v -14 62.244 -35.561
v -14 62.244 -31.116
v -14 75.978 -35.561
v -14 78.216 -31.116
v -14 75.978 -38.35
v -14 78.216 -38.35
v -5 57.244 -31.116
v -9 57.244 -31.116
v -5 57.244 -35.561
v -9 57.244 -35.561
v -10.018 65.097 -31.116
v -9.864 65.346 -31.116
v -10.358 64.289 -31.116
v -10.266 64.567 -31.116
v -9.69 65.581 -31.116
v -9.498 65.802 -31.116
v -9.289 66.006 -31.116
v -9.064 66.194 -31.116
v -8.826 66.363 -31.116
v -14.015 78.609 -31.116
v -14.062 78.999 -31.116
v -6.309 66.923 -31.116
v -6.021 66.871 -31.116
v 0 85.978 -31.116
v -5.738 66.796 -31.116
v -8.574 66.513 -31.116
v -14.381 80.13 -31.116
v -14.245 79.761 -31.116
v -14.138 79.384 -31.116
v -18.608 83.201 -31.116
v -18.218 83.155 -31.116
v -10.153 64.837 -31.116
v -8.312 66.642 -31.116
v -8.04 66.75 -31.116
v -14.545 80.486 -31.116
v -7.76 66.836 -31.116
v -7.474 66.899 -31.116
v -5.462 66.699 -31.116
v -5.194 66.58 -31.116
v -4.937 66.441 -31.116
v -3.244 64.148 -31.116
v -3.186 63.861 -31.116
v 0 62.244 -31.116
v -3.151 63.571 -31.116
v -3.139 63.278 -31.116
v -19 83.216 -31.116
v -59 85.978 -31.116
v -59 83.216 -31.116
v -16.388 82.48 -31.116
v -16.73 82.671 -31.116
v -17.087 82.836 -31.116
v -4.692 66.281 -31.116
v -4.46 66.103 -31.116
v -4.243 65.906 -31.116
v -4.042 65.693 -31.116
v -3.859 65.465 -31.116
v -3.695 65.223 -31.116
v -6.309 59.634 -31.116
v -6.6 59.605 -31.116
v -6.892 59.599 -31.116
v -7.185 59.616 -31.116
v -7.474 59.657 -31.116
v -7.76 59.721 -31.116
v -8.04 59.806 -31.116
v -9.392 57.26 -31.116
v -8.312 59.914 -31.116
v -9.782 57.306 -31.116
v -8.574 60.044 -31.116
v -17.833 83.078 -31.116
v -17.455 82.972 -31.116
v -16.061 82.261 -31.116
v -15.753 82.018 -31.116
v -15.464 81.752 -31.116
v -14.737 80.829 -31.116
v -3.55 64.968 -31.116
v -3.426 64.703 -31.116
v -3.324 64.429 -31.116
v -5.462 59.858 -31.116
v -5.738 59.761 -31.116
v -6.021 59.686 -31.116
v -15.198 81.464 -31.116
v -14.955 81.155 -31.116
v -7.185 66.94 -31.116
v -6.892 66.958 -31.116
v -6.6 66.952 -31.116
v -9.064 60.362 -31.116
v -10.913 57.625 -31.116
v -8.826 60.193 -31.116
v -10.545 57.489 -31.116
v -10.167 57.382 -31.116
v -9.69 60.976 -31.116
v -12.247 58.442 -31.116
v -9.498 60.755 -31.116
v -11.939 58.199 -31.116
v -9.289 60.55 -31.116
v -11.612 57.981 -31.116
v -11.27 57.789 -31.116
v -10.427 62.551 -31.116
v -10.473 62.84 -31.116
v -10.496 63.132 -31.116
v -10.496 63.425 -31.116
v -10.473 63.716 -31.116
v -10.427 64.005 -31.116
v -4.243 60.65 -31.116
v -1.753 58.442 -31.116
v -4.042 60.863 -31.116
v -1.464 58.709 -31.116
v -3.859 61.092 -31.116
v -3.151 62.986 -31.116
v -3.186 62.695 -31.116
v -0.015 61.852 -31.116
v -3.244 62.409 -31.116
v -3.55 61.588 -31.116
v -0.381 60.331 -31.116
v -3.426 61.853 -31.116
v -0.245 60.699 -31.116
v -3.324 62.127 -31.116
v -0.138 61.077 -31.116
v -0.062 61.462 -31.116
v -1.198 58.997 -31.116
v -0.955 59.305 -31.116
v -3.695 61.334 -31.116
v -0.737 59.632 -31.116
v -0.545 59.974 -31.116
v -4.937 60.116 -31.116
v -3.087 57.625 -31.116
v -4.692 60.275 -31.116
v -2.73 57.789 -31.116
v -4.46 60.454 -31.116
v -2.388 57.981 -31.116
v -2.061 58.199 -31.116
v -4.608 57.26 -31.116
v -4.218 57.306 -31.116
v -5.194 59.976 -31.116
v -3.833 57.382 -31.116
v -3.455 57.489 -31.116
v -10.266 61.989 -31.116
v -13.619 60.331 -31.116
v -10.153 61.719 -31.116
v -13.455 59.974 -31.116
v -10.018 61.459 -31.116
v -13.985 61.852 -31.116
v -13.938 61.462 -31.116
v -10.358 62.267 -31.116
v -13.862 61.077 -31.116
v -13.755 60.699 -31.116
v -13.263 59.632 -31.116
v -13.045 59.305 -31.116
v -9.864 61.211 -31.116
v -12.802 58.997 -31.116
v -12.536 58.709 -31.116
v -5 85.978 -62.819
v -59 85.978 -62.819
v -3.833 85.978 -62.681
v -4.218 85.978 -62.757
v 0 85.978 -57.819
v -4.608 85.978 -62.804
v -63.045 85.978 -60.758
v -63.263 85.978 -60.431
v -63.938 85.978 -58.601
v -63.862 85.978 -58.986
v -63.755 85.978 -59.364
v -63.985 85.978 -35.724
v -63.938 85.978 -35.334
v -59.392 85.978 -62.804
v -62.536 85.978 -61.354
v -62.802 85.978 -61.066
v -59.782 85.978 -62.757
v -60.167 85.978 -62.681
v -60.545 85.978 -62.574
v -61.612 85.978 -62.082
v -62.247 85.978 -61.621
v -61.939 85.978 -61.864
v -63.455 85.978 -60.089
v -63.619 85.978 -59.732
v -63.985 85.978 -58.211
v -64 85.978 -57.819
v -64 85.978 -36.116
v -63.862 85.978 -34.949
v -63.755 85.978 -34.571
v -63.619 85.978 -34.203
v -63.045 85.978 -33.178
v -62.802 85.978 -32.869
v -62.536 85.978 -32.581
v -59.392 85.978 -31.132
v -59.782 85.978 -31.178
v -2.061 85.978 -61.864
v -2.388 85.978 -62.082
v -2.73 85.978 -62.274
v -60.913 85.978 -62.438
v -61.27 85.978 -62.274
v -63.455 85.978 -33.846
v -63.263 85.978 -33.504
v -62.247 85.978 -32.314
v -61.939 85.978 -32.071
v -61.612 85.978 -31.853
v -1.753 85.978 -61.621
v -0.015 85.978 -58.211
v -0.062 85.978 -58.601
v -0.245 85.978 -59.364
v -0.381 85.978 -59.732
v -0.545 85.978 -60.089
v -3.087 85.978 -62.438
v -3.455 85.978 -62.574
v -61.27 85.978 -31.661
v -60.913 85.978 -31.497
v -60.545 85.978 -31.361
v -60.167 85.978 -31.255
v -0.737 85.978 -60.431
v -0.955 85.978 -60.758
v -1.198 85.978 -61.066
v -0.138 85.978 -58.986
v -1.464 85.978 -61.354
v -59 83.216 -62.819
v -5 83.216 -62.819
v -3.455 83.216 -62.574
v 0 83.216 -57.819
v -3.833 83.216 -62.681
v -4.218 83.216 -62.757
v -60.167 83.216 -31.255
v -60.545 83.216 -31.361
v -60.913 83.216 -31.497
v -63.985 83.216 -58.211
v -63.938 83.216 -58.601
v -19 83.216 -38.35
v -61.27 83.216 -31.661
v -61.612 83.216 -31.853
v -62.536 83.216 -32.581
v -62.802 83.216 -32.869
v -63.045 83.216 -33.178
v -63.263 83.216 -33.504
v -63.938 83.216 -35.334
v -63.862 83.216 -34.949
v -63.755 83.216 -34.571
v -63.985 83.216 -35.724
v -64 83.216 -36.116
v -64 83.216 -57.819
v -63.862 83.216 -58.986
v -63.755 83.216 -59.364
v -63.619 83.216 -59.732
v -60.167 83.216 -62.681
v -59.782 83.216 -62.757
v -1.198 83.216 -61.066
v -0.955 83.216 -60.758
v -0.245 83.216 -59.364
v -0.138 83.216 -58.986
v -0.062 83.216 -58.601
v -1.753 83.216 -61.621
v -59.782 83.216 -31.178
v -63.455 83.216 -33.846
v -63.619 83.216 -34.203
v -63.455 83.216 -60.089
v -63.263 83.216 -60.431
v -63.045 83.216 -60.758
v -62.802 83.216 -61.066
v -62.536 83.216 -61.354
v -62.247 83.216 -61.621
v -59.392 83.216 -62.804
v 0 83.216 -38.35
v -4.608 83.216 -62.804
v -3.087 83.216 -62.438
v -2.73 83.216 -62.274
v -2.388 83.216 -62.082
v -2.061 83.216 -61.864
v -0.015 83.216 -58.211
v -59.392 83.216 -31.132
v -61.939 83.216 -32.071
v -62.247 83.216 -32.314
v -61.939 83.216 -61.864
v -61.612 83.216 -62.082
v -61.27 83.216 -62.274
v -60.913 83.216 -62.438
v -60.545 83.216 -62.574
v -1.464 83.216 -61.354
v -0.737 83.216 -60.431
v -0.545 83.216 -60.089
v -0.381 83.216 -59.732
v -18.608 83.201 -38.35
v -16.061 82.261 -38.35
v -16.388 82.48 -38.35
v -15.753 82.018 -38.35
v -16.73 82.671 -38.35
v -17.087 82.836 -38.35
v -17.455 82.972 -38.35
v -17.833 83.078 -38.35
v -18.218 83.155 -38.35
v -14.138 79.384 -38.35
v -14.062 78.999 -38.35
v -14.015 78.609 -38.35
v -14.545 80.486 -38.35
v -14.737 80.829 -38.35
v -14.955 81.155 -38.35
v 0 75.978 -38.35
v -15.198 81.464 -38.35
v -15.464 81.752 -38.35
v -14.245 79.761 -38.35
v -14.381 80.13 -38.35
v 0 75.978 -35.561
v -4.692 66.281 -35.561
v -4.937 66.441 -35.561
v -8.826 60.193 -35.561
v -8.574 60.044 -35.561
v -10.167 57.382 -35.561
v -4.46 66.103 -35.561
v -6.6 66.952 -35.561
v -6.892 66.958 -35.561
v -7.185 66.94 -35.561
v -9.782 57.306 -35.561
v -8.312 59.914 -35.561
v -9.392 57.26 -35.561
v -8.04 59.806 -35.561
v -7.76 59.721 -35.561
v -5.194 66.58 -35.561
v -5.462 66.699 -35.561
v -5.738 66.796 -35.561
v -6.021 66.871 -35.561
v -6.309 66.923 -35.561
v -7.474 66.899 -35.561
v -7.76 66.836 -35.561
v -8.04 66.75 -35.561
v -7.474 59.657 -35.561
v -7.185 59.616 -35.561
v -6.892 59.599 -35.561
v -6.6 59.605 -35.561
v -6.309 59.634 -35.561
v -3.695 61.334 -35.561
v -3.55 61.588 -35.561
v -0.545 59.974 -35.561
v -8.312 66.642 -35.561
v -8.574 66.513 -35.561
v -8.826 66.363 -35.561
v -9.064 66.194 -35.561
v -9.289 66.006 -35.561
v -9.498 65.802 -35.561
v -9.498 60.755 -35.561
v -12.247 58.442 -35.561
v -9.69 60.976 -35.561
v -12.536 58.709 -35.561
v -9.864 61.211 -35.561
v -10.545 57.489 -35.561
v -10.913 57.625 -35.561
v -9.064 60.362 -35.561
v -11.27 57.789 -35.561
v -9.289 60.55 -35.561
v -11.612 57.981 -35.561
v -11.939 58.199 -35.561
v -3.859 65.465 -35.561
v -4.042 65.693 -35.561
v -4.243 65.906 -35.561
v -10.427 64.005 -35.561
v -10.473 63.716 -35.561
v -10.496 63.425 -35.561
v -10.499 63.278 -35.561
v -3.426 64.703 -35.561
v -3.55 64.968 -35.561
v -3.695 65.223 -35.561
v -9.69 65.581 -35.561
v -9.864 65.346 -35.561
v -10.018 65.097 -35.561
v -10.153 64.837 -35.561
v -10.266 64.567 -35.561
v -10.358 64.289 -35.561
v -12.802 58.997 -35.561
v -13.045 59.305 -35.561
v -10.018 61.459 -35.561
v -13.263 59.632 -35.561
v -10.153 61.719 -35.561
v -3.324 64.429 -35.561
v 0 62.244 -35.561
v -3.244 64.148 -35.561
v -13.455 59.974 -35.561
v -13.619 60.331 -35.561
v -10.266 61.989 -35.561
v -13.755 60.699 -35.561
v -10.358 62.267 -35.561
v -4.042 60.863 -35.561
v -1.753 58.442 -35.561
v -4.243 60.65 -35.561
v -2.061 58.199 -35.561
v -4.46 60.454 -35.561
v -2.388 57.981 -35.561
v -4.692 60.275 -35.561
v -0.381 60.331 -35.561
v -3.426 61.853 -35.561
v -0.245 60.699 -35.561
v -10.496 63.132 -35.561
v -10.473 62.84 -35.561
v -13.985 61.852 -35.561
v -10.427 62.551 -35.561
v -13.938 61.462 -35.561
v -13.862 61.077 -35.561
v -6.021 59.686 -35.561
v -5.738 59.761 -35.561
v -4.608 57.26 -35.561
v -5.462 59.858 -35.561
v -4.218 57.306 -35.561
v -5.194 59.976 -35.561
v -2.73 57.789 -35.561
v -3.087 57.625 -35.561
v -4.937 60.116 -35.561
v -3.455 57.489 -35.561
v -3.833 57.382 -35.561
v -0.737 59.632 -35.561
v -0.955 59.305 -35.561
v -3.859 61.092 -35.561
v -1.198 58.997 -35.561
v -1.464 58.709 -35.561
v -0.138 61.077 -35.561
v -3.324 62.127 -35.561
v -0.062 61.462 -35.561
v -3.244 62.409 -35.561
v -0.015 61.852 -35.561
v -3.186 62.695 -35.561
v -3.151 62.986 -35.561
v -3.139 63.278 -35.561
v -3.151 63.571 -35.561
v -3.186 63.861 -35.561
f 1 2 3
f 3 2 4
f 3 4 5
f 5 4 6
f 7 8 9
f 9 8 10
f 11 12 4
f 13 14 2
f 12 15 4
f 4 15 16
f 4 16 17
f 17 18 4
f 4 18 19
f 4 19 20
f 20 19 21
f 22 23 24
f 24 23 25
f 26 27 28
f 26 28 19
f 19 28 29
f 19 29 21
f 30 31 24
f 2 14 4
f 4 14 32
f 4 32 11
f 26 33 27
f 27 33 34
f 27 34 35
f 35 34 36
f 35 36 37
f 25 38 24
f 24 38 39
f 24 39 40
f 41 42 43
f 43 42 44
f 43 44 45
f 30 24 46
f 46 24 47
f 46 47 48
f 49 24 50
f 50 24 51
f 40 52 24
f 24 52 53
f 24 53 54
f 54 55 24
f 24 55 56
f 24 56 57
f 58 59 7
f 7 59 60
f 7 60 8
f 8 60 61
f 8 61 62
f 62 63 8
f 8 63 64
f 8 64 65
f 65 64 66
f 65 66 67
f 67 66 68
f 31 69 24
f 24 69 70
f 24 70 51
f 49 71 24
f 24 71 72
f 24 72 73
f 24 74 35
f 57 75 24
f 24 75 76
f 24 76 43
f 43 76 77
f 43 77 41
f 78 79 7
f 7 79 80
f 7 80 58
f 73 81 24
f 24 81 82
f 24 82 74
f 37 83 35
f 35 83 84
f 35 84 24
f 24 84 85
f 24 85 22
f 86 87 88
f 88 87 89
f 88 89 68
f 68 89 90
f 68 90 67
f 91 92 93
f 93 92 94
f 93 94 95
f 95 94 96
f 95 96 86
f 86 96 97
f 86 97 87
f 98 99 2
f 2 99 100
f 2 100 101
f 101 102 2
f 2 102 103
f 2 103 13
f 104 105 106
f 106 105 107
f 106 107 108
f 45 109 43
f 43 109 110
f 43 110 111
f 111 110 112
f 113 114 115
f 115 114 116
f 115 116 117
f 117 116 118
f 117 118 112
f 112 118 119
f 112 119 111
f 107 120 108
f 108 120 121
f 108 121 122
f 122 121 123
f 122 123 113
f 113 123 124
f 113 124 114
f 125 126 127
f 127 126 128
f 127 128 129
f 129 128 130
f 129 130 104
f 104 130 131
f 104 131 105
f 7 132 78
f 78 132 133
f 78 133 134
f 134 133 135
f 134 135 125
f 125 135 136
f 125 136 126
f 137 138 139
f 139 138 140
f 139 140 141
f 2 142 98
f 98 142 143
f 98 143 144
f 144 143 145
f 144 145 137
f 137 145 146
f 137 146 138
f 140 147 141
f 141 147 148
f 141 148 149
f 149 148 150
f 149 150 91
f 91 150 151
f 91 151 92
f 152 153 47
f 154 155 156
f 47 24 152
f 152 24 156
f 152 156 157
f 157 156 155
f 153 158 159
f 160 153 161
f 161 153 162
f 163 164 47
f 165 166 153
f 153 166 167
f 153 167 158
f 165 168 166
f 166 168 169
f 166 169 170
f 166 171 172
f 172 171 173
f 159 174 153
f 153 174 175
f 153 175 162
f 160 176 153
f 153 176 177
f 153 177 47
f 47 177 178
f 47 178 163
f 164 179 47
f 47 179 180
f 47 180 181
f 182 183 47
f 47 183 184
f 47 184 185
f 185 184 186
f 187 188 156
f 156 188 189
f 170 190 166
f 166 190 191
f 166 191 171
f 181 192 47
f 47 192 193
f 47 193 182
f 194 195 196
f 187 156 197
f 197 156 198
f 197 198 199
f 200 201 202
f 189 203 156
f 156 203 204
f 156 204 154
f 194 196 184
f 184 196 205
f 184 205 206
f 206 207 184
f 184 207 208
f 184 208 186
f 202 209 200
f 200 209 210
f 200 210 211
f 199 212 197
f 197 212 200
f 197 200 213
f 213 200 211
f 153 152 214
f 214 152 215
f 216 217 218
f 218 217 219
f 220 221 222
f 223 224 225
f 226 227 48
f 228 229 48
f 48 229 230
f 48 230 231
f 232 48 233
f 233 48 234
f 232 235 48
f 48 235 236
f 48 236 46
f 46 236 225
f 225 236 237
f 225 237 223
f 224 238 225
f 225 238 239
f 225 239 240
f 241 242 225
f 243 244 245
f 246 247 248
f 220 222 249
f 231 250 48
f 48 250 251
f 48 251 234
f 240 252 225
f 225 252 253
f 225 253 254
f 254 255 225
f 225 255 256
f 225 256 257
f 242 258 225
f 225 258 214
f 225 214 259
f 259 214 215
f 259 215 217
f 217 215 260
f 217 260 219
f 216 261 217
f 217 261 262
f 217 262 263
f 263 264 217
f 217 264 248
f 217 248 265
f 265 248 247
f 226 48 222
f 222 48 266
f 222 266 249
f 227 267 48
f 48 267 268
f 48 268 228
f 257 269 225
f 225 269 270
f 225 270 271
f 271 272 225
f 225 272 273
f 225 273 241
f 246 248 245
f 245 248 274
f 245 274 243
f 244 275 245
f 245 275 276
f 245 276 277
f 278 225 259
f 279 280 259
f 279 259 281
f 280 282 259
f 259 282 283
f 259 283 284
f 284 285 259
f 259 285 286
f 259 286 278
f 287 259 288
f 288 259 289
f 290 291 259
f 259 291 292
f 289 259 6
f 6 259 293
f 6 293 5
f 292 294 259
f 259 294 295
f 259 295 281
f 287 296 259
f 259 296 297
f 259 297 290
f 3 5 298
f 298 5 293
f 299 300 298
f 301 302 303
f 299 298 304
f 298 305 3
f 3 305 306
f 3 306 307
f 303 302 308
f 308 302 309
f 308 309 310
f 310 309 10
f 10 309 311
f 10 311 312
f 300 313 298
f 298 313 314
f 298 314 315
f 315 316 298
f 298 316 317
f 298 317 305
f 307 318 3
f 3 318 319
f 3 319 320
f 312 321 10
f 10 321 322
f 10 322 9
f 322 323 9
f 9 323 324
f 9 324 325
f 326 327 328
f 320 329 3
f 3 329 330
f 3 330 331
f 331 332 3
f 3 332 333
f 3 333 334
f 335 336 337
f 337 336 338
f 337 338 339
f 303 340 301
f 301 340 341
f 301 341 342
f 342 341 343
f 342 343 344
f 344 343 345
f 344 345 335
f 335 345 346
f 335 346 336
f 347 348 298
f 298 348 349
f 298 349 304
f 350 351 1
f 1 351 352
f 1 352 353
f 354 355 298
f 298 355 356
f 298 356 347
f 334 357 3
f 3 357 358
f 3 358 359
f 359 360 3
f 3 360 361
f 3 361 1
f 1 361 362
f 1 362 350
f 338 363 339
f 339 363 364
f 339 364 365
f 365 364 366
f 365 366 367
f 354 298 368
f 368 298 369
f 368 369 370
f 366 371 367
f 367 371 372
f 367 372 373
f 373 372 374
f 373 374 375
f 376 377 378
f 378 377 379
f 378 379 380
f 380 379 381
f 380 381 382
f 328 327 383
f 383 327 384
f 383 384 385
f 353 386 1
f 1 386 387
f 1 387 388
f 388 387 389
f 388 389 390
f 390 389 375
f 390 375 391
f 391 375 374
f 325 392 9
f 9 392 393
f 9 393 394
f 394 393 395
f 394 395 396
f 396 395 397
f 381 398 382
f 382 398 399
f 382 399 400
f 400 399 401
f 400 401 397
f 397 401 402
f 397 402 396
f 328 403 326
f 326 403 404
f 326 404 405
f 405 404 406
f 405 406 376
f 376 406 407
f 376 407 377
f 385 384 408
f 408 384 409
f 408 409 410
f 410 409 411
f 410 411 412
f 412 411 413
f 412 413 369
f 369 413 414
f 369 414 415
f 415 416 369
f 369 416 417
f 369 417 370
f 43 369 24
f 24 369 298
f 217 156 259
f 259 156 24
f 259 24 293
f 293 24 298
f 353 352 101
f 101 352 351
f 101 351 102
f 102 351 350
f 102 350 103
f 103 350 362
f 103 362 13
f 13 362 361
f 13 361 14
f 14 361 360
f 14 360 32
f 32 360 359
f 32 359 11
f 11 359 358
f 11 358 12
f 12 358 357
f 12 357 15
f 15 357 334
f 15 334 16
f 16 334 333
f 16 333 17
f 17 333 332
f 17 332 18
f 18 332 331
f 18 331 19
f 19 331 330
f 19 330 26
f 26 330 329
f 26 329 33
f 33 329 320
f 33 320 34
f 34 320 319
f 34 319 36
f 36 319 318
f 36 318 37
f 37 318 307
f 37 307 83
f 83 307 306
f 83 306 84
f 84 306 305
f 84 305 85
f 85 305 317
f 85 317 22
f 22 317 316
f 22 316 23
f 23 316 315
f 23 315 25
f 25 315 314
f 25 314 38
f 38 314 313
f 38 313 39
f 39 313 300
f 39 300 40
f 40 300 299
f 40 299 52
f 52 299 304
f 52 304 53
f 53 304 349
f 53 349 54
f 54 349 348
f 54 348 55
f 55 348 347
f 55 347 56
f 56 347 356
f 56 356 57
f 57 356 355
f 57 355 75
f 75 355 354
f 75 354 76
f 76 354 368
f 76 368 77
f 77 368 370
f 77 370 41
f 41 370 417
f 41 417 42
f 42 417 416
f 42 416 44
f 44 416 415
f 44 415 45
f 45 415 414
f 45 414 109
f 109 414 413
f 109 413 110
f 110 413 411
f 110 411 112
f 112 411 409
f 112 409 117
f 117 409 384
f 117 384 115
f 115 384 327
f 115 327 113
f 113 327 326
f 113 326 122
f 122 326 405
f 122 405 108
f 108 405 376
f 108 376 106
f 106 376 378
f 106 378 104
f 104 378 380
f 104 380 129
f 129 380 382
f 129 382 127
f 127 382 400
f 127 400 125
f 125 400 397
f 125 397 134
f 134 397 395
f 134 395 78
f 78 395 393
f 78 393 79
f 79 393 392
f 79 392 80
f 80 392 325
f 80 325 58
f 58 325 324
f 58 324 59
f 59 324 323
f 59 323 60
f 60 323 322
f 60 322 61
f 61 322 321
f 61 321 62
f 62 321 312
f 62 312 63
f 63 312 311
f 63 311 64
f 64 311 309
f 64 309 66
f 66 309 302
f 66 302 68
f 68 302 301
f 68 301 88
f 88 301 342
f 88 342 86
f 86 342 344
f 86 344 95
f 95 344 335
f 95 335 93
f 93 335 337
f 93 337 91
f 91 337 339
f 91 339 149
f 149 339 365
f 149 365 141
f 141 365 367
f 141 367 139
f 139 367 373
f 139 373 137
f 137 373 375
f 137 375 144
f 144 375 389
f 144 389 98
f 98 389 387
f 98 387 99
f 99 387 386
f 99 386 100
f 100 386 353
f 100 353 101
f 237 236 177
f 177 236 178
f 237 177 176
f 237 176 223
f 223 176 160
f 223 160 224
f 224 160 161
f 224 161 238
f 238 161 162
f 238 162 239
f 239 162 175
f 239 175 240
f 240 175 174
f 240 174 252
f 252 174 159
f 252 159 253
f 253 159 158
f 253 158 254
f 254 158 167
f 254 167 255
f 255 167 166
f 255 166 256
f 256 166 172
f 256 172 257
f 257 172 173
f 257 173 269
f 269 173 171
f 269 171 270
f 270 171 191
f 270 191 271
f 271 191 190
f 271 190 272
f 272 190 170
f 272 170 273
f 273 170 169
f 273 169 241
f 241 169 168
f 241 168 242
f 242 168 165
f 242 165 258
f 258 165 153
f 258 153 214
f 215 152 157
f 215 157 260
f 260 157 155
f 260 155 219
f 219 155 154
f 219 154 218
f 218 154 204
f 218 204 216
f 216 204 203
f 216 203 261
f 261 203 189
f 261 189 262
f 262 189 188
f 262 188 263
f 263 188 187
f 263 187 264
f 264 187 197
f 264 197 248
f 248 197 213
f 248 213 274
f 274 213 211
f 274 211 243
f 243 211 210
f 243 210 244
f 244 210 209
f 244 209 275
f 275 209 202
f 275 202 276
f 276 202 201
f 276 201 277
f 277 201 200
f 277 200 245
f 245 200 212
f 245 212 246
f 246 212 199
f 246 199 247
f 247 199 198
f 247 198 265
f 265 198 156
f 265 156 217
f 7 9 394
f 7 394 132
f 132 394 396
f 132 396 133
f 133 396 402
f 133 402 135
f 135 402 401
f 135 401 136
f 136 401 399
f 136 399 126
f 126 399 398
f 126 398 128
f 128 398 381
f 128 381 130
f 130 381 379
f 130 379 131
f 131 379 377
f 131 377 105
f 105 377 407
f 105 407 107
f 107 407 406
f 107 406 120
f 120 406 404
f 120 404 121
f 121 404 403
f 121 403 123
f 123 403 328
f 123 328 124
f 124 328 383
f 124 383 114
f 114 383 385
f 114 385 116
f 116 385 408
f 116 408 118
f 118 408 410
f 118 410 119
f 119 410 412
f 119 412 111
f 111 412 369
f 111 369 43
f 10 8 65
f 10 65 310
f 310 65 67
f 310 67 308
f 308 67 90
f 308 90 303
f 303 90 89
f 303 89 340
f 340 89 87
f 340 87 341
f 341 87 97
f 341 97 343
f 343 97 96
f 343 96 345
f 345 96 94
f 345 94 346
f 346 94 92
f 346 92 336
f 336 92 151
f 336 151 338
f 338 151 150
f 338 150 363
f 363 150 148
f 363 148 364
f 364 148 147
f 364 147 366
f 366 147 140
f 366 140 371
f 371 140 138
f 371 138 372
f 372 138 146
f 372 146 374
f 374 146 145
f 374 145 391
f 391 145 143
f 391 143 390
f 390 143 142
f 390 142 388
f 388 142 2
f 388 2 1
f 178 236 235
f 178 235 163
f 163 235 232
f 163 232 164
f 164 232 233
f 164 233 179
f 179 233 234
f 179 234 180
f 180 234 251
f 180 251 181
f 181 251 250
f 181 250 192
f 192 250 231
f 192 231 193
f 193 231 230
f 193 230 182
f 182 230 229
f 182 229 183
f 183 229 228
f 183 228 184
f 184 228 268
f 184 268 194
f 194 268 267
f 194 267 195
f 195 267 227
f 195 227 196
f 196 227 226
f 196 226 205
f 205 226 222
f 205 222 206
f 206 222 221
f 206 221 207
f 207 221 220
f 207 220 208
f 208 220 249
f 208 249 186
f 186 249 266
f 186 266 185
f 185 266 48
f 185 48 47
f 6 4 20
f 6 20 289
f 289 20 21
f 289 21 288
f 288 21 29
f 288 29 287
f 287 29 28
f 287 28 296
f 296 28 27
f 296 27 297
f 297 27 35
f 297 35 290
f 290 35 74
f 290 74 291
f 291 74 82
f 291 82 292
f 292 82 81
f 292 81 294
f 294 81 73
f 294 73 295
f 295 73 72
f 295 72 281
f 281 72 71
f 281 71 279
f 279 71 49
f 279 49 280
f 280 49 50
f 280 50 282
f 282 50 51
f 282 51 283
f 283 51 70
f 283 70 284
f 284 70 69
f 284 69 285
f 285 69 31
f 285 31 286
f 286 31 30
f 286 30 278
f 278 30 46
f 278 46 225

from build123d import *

# Parameters (mm, degrees)
BOSS_EXTRUDE6_DEPTH = 14
SKETCH8_R           = 3.68
CUT_EXTRUDE1_DEPTH  = 10
SKETCH10_W          = 31.702507637
SKETCH10_H          = 2.761891862
BOSS_EXTRUDE8_DEPTH = 50
FILLET2_R           = 5


with BuildPart() as part:
    # Sketch7 → Boss-Extrude6 (new body)
    with BuildSketch(Plane(origin=(0, 0, 44.491647423), x_dir=(0, 1, 0), z_dir=(1, 0, 0))):
        Polygon((57.244330768, -80.05237461), (75.978257712, -80.05237461), (75.978257712, -82.841498661), (83.21636585, -82.841498661), (83.21636585, -107.310582048), (85.978257712, -107.310582048), (85.978257712, -75.608074412), (57.244330768, -75.608074412), align=None)
    extrude(amount=-BOSS_EXTRUDE6_DEPTH)

    # Sketch8 → Cut-Extrude1 (cut)
    with BuildSketch(Plane.XY.offset(-31.116426988)):
        with Locations((-6.819274641, 63.278257712)):
            Circle(SKETCH8_R)
    extrude(amount=-CUT_EXTRUDE1_DEPTH, mode=Mode.SUBTRACT)

    # Sketch10 → Boss-Extrude8 (add)
    with BuildSketch(Plane.ZY.offset(14)):
        with Locations((-46.967680806, 84.597311781)):
            Rectangle(SKETCH10_W, SKETCH10_H)
    extrude(amount=BOSS_EXTRUDE8_DEPTH)

    # Fillet2
    fillet2_edges = [part.edges().sort_by_distance(p)[0] for p in [
        (-64, 84.597311781, -62.818934625),
        (0, 84.597311781, -62.818934625),
        (0, 57.244330768, -33.338577087),
        (-14, 57.244330768, -33.338577087),
        (-64, 84.597311781, -31.116426988),
        (-14, 83.21636585, -34.733139113),
    ]]
    fillet(fillet2_edges, radius=FILLET2_R)


solid = part.part
